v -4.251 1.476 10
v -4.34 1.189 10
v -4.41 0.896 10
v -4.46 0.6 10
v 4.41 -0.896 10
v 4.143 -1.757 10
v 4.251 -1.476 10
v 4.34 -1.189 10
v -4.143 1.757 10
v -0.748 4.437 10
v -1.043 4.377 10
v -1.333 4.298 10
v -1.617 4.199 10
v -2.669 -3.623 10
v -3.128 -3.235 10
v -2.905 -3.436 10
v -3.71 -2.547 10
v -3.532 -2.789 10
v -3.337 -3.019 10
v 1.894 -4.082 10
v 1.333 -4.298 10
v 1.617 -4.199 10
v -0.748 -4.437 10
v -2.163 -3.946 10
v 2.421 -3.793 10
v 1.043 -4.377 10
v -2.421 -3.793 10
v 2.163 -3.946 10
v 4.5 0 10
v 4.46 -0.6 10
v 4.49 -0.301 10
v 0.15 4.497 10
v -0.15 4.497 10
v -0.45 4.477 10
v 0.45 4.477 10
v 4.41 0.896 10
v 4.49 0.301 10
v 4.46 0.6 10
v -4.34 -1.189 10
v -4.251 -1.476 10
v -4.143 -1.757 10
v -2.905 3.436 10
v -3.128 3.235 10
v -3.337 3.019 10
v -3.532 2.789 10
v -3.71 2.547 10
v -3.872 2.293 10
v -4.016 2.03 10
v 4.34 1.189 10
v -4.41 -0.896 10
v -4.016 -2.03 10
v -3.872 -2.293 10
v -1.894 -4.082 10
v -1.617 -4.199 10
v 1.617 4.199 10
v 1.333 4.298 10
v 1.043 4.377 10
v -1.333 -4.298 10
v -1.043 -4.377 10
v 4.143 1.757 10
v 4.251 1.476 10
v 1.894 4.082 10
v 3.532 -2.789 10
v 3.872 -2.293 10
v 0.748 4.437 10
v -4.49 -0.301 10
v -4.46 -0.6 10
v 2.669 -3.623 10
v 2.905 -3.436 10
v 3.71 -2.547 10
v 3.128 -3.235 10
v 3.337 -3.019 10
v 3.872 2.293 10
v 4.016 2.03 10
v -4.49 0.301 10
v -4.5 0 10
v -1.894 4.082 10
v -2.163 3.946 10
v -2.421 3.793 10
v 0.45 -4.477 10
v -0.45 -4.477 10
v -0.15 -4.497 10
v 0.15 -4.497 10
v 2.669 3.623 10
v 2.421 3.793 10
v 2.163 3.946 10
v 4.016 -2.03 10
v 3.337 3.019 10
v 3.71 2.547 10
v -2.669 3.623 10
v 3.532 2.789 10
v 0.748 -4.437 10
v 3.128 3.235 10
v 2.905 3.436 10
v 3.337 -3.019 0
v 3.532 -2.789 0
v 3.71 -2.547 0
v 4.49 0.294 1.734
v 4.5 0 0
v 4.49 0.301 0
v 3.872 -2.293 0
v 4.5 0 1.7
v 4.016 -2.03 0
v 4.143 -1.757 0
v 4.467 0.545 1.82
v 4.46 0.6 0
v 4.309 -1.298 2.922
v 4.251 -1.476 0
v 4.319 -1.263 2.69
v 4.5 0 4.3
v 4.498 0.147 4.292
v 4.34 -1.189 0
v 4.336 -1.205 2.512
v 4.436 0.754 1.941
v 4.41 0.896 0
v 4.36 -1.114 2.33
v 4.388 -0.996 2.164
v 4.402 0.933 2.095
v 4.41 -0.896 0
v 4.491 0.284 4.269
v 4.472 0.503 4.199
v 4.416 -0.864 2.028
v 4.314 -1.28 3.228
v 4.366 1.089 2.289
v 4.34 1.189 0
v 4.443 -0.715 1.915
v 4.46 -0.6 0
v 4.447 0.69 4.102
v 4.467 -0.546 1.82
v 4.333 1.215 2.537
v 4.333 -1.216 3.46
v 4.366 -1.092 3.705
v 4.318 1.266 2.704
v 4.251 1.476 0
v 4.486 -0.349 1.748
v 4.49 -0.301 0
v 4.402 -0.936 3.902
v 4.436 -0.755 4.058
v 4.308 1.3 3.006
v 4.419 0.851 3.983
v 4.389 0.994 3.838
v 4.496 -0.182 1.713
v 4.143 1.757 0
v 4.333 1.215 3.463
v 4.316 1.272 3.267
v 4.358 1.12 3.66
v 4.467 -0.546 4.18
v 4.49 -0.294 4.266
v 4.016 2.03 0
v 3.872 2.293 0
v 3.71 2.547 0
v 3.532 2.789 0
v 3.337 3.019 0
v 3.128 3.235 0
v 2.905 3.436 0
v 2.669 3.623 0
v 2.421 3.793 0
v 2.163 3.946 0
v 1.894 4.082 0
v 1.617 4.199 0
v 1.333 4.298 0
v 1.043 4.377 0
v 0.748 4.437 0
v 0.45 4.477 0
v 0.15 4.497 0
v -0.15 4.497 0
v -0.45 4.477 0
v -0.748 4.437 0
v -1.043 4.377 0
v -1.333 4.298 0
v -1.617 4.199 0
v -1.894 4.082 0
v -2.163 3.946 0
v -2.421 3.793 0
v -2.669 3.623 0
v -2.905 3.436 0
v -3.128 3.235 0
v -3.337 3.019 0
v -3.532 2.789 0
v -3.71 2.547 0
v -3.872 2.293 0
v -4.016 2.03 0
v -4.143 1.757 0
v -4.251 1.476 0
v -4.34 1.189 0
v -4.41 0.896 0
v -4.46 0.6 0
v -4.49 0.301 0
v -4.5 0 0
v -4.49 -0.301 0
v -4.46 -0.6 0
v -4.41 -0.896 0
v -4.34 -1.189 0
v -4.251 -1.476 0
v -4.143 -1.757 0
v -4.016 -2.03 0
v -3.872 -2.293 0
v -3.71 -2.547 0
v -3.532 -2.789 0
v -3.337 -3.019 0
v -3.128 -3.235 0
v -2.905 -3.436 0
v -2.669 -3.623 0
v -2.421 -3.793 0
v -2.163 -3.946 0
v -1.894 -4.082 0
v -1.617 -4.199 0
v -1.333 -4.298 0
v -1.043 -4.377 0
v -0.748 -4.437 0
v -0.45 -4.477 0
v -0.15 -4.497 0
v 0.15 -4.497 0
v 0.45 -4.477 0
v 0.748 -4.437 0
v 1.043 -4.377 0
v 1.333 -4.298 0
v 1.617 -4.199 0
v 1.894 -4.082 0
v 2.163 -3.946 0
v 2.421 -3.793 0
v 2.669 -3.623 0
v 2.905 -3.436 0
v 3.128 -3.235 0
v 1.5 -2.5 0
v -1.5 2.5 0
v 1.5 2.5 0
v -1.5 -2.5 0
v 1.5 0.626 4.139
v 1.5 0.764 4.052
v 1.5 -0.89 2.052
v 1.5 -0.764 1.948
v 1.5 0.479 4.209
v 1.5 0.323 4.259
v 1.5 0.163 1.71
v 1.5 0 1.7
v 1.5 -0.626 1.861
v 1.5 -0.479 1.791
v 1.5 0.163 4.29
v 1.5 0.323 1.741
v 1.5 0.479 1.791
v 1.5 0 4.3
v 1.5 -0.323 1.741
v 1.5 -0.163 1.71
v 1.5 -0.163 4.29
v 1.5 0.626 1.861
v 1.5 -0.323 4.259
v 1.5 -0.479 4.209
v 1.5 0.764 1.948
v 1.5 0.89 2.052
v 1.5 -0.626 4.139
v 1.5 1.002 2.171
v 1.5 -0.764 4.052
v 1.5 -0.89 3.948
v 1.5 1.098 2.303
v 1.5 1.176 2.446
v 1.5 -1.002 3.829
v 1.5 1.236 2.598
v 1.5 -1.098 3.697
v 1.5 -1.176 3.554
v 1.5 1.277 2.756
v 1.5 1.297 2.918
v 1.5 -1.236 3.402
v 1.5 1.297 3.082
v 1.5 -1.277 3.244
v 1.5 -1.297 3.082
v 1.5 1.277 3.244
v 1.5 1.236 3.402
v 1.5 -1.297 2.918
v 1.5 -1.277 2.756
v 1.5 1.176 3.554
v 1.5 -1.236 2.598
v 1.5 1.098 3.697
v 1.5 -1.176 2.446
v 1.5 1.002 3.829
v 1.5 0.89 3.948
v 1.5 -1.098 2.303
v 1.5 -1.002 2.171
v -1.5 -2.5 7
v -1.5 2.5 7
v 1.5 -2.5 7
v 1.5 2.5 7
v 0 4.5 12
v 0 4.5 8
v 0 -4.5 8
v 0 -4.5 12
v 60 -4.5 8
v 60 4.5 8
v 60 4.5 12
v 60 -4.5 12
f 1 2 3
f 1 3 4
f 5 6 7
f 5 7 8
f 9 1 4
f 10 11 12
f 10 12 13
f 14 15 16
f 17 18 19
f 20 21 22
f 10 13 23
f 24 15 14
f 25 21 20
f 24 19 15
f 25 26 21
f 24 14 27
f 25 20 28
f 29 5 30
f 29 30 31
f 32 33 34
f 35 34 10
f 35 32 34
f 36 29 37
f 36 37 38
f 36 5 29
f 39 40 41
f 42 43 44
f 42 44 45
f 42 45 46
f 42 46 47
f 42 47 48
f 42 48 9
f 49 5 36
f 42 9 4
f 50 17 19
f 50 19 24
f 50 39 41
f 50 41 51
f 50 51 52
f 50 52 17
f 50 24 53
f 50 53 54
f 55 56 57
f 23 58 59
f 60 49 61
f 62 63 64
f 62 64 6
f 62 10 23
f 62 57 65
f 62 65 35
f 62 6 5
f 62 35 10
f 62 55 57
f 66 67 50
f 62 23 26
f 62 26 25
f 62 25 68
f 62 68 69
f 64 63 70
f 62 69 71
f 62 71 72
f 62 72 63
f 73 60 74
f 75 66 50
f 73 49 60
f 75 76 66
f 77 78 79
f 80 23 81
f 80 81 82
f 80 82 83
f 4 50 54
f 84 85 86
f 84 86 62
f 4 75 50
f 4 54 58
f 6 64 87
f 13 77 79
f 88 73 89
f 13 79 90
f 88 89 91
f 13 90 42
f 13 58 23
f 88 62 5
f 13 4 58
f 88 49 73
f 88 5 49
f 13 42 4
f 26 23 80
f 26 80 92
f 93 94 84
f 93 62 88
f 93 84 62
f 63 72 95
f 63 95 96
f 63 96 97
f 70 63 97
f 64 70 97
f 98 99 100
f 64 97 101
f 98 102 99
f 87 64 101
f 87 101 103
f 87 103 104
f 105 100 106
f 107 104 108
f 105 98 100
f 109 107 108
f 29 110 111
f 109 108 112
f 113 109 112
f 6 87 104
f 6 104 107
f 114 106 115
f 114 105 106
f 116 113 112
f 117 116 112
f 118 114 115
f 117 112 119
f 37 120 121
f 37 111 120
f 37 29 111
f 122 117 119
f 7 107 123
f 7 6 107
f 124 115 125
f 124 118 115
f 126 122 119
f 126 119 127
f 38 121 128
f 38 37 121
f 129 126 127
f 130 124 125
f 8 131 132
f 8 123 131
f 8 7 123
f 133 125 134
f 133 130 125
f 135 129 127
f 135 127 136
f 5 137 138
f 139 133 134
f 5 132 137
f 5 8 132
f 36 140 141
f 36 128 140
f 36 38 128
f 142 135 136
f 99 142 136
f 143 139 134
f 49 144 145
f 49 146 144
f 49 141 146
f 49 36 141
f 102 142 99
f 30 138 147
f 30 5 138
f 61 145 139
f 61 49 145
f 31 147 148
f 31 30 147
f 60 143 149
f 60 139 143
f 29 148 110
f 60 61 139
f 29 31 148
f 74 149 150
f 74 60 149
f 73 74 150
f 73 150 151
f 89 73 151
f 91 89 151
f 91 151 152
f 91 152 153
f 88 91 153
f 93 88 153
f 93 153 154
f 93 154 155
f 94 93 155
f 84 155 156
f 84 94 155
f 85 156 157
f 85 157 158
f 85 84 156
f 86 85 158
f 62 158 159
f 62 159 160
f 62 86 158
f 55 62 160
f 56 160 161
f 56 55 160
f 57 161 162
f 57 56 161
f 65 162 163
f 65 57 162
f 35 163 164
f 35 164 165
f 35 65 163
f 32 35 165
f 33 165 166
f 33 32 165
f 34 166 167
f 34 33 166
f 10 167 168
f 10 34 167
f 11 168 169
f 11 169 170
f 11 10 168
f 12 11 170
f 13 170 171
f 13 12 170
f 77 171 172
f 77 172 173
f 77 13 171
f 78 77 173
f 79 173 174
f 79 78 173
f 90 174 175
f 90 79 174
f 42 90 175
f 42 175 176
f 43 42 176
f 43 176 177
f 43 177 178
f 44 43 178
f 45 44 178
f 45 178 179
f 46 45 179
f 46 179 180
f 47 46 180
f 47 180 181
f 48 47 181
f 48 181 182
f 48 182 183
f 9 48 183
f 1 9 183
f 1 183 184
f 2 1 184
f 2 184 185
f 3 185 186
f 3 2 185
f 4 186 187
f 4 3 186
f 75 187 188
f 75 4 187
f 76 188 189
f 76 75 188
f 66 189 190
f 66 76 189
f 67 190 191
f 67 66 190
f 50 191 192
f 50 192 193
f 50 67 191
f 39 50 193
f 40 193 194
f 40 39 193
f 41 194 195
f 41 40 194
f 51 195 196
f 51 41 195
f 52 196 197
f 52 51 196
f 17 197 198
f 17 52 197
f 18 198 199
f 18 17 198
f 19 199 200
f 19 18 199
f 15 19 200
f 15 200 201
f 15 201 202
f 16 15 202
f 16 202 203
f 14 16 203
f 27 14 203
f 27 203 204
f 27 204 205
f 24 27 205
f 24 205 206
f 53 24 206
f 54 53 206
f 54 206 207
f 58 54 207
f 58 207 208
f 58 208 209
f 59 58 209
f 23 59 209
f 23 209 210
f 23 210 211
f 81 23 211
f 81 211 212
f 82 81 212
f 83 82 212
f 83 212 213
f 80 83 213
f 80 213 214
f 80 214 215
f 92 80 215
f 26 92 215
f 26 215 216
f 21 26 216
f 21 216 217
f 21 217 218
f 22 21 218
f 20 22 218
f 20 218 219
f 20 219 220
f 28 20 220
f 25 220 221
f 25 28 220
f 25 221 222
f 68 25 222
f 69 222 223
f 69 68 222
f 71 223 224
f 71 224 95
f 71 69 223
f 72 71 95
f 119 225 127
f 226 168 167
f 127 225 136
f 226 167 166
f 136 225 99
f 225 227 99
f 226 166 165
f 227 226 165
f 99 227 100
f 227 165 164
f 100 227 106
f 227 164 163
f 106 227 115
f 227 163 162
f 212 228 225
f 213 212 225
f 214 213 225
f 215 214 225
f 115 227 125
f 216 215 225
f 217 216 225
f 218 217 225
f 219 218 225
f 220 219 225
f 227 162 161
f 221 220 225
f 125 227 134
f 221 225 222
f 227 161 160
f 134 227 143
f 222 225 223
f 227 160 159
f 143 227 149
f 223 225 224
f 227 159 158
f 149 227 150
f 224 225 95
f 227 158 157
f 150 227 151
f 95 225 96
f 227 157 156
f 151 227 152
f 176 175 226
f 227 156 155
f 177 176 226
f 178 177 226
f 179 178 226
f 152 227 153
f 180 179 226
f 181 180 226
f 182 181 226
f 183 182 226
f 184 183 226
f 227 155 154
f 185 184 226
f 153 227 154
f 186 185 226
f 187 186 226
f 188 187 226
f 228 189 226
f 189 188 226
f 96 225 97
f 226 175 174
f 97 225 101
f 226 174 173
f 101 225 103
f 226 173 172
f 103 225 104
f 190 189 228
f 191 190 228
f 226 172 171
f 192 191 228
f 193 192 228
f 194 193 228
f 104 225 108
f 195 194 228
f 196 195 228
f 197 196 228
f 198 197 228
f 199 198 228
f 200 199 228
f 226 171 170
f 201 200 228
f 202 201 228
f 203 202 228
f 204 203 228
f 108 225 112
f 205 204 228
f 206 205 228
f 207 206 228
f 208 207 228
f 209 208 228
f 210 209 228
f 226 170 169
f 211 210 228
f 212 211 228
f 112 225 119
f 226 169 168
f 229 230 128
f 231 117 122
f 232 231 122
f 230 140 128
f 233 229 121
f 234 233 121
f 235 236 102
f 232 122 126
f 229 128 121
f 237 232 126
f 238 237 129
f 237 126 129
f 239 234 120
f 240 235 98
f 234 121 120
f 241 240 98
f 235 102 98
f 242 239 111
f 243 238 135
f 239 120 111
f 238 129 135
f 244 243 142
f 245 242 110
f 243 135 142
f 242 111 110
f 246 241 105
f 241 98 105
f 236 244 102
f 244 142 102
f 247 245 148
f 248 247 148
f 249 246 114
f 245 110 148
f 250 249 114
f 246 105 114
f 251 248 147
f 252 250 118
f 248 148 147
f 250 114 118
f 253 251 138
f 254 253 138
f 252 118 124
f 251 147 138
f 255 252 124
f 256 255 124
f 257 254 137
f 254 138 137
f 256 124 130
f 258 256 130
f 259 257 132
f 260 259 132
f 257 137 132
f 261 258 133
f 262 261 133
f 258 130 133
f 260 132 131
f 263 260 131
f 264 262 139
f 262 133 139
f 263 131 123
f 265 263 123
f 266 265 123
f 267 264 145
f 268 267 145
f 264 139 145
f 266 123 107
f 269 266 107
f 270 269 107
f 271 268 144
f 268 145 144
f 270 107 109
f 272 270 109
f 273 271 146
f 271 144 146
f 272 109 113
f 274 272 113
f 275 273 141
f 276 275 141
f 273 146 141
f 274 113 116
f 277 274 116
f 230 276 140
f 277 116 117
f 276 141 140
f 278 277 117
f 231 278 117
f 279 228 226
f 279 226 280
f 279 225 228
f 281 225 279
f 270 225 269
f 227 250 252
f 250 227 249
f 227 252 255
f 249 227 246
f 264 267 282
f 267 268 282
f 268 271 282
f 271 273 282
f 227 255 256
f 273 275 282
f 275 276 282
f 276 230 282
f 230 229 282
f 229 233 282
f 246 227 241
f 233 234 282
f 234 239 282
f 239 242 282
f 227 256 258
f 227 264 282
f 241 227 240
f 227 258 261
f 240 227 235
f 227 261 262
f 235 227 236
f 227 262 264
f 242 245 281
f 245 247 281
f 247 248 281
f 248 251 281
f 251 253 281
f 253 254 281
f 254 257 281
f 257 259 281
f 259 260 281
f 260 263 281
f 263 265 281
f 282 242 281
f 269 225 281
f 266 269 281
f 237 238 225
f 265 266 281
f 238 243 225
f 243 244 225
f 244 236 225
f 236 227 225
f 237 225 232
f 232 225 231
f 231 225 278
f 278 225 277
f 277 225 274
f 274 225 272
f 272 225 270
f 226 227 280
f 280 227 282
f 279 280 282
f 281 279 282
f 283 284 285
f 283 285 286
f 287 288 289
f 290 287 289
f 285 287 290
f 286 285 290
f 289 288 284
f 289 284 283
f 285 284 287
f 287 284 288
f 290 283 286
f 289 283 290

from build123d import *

# Parameters (mm, degrees)
CYLINDER_R           = 1.3
CYLINDER_DEPTH       = 5
CYLINDER_PITCH_ANGLE = 90
BOX_W                = 3
BOX_H                = 5
BOX_DEPTH            = 7
CYLINDER001_R        = 4.5
CYLINDER001_DEPTH    = 10
BOX001_W             = 60
BOX001_H             = 9
BOX001_DEPTH         = 4


with BuildPart() as cylinder:
    # Cylinder → Cylinder (new body)
    with BuildSketch(Plane.XY):
        Circle(CYLINDER_R)
    extrude(amount=CYLINDER_DEPTH)


with BuildPart() as cylinder_1:
    # Cylinder pitch: moved
    add(cylinder.part.rotate(Axis((0, 0, 0), (0, 1, 0)), CYLINDER_PITCH_ANGLE))


with BuildPart() as cylinder_2:
    # Cylinder placement: moved
    add(cylinder_1.part.moved(Location((0, 0, 3))))


with BuildPart() as box:
    # Box → Box (new body)
    with BuildSketch(Plane(origin=(-1.5, -2.5, 0), x_dir=(1, 0, 0), z_dir=(0, 0, 1))):
        with Locations((1.5, 2.5)):
            Rectangle(BOX_W, BOX_H)
    extrude(amount=BOX_DEPTH)


with BuildPart() as cut001:
    # Cylinder001 → Cylinder001 (new body)
    with BuildSketch(Plane.XY):
        Circle(CYLINDER001_R)
    extrude(amount=CYLINDER001_DEPTH)

    # Cut: cut Box
    add(box.part, mode=Mode.SUBTRACT)

    # Cut001: cut Cylinder
    add(cylinder_2.part, mode=Mode.SUBTRACT)


with BuildPart() as box001:
    # Box001 → Box001 (new body)
    with BuildSketch(Plane(origin=(0, -4.5, 8), x_dir=(1, 0, 0), z_dir=(0, 0, 1))):
        with Locations((30, 4.5)):
            Rectangle(BOX001_W, BOX001_H)
    extrude(amount=BOX001_DEPTH)


solid = Compound([cut001.part, box001.part])
